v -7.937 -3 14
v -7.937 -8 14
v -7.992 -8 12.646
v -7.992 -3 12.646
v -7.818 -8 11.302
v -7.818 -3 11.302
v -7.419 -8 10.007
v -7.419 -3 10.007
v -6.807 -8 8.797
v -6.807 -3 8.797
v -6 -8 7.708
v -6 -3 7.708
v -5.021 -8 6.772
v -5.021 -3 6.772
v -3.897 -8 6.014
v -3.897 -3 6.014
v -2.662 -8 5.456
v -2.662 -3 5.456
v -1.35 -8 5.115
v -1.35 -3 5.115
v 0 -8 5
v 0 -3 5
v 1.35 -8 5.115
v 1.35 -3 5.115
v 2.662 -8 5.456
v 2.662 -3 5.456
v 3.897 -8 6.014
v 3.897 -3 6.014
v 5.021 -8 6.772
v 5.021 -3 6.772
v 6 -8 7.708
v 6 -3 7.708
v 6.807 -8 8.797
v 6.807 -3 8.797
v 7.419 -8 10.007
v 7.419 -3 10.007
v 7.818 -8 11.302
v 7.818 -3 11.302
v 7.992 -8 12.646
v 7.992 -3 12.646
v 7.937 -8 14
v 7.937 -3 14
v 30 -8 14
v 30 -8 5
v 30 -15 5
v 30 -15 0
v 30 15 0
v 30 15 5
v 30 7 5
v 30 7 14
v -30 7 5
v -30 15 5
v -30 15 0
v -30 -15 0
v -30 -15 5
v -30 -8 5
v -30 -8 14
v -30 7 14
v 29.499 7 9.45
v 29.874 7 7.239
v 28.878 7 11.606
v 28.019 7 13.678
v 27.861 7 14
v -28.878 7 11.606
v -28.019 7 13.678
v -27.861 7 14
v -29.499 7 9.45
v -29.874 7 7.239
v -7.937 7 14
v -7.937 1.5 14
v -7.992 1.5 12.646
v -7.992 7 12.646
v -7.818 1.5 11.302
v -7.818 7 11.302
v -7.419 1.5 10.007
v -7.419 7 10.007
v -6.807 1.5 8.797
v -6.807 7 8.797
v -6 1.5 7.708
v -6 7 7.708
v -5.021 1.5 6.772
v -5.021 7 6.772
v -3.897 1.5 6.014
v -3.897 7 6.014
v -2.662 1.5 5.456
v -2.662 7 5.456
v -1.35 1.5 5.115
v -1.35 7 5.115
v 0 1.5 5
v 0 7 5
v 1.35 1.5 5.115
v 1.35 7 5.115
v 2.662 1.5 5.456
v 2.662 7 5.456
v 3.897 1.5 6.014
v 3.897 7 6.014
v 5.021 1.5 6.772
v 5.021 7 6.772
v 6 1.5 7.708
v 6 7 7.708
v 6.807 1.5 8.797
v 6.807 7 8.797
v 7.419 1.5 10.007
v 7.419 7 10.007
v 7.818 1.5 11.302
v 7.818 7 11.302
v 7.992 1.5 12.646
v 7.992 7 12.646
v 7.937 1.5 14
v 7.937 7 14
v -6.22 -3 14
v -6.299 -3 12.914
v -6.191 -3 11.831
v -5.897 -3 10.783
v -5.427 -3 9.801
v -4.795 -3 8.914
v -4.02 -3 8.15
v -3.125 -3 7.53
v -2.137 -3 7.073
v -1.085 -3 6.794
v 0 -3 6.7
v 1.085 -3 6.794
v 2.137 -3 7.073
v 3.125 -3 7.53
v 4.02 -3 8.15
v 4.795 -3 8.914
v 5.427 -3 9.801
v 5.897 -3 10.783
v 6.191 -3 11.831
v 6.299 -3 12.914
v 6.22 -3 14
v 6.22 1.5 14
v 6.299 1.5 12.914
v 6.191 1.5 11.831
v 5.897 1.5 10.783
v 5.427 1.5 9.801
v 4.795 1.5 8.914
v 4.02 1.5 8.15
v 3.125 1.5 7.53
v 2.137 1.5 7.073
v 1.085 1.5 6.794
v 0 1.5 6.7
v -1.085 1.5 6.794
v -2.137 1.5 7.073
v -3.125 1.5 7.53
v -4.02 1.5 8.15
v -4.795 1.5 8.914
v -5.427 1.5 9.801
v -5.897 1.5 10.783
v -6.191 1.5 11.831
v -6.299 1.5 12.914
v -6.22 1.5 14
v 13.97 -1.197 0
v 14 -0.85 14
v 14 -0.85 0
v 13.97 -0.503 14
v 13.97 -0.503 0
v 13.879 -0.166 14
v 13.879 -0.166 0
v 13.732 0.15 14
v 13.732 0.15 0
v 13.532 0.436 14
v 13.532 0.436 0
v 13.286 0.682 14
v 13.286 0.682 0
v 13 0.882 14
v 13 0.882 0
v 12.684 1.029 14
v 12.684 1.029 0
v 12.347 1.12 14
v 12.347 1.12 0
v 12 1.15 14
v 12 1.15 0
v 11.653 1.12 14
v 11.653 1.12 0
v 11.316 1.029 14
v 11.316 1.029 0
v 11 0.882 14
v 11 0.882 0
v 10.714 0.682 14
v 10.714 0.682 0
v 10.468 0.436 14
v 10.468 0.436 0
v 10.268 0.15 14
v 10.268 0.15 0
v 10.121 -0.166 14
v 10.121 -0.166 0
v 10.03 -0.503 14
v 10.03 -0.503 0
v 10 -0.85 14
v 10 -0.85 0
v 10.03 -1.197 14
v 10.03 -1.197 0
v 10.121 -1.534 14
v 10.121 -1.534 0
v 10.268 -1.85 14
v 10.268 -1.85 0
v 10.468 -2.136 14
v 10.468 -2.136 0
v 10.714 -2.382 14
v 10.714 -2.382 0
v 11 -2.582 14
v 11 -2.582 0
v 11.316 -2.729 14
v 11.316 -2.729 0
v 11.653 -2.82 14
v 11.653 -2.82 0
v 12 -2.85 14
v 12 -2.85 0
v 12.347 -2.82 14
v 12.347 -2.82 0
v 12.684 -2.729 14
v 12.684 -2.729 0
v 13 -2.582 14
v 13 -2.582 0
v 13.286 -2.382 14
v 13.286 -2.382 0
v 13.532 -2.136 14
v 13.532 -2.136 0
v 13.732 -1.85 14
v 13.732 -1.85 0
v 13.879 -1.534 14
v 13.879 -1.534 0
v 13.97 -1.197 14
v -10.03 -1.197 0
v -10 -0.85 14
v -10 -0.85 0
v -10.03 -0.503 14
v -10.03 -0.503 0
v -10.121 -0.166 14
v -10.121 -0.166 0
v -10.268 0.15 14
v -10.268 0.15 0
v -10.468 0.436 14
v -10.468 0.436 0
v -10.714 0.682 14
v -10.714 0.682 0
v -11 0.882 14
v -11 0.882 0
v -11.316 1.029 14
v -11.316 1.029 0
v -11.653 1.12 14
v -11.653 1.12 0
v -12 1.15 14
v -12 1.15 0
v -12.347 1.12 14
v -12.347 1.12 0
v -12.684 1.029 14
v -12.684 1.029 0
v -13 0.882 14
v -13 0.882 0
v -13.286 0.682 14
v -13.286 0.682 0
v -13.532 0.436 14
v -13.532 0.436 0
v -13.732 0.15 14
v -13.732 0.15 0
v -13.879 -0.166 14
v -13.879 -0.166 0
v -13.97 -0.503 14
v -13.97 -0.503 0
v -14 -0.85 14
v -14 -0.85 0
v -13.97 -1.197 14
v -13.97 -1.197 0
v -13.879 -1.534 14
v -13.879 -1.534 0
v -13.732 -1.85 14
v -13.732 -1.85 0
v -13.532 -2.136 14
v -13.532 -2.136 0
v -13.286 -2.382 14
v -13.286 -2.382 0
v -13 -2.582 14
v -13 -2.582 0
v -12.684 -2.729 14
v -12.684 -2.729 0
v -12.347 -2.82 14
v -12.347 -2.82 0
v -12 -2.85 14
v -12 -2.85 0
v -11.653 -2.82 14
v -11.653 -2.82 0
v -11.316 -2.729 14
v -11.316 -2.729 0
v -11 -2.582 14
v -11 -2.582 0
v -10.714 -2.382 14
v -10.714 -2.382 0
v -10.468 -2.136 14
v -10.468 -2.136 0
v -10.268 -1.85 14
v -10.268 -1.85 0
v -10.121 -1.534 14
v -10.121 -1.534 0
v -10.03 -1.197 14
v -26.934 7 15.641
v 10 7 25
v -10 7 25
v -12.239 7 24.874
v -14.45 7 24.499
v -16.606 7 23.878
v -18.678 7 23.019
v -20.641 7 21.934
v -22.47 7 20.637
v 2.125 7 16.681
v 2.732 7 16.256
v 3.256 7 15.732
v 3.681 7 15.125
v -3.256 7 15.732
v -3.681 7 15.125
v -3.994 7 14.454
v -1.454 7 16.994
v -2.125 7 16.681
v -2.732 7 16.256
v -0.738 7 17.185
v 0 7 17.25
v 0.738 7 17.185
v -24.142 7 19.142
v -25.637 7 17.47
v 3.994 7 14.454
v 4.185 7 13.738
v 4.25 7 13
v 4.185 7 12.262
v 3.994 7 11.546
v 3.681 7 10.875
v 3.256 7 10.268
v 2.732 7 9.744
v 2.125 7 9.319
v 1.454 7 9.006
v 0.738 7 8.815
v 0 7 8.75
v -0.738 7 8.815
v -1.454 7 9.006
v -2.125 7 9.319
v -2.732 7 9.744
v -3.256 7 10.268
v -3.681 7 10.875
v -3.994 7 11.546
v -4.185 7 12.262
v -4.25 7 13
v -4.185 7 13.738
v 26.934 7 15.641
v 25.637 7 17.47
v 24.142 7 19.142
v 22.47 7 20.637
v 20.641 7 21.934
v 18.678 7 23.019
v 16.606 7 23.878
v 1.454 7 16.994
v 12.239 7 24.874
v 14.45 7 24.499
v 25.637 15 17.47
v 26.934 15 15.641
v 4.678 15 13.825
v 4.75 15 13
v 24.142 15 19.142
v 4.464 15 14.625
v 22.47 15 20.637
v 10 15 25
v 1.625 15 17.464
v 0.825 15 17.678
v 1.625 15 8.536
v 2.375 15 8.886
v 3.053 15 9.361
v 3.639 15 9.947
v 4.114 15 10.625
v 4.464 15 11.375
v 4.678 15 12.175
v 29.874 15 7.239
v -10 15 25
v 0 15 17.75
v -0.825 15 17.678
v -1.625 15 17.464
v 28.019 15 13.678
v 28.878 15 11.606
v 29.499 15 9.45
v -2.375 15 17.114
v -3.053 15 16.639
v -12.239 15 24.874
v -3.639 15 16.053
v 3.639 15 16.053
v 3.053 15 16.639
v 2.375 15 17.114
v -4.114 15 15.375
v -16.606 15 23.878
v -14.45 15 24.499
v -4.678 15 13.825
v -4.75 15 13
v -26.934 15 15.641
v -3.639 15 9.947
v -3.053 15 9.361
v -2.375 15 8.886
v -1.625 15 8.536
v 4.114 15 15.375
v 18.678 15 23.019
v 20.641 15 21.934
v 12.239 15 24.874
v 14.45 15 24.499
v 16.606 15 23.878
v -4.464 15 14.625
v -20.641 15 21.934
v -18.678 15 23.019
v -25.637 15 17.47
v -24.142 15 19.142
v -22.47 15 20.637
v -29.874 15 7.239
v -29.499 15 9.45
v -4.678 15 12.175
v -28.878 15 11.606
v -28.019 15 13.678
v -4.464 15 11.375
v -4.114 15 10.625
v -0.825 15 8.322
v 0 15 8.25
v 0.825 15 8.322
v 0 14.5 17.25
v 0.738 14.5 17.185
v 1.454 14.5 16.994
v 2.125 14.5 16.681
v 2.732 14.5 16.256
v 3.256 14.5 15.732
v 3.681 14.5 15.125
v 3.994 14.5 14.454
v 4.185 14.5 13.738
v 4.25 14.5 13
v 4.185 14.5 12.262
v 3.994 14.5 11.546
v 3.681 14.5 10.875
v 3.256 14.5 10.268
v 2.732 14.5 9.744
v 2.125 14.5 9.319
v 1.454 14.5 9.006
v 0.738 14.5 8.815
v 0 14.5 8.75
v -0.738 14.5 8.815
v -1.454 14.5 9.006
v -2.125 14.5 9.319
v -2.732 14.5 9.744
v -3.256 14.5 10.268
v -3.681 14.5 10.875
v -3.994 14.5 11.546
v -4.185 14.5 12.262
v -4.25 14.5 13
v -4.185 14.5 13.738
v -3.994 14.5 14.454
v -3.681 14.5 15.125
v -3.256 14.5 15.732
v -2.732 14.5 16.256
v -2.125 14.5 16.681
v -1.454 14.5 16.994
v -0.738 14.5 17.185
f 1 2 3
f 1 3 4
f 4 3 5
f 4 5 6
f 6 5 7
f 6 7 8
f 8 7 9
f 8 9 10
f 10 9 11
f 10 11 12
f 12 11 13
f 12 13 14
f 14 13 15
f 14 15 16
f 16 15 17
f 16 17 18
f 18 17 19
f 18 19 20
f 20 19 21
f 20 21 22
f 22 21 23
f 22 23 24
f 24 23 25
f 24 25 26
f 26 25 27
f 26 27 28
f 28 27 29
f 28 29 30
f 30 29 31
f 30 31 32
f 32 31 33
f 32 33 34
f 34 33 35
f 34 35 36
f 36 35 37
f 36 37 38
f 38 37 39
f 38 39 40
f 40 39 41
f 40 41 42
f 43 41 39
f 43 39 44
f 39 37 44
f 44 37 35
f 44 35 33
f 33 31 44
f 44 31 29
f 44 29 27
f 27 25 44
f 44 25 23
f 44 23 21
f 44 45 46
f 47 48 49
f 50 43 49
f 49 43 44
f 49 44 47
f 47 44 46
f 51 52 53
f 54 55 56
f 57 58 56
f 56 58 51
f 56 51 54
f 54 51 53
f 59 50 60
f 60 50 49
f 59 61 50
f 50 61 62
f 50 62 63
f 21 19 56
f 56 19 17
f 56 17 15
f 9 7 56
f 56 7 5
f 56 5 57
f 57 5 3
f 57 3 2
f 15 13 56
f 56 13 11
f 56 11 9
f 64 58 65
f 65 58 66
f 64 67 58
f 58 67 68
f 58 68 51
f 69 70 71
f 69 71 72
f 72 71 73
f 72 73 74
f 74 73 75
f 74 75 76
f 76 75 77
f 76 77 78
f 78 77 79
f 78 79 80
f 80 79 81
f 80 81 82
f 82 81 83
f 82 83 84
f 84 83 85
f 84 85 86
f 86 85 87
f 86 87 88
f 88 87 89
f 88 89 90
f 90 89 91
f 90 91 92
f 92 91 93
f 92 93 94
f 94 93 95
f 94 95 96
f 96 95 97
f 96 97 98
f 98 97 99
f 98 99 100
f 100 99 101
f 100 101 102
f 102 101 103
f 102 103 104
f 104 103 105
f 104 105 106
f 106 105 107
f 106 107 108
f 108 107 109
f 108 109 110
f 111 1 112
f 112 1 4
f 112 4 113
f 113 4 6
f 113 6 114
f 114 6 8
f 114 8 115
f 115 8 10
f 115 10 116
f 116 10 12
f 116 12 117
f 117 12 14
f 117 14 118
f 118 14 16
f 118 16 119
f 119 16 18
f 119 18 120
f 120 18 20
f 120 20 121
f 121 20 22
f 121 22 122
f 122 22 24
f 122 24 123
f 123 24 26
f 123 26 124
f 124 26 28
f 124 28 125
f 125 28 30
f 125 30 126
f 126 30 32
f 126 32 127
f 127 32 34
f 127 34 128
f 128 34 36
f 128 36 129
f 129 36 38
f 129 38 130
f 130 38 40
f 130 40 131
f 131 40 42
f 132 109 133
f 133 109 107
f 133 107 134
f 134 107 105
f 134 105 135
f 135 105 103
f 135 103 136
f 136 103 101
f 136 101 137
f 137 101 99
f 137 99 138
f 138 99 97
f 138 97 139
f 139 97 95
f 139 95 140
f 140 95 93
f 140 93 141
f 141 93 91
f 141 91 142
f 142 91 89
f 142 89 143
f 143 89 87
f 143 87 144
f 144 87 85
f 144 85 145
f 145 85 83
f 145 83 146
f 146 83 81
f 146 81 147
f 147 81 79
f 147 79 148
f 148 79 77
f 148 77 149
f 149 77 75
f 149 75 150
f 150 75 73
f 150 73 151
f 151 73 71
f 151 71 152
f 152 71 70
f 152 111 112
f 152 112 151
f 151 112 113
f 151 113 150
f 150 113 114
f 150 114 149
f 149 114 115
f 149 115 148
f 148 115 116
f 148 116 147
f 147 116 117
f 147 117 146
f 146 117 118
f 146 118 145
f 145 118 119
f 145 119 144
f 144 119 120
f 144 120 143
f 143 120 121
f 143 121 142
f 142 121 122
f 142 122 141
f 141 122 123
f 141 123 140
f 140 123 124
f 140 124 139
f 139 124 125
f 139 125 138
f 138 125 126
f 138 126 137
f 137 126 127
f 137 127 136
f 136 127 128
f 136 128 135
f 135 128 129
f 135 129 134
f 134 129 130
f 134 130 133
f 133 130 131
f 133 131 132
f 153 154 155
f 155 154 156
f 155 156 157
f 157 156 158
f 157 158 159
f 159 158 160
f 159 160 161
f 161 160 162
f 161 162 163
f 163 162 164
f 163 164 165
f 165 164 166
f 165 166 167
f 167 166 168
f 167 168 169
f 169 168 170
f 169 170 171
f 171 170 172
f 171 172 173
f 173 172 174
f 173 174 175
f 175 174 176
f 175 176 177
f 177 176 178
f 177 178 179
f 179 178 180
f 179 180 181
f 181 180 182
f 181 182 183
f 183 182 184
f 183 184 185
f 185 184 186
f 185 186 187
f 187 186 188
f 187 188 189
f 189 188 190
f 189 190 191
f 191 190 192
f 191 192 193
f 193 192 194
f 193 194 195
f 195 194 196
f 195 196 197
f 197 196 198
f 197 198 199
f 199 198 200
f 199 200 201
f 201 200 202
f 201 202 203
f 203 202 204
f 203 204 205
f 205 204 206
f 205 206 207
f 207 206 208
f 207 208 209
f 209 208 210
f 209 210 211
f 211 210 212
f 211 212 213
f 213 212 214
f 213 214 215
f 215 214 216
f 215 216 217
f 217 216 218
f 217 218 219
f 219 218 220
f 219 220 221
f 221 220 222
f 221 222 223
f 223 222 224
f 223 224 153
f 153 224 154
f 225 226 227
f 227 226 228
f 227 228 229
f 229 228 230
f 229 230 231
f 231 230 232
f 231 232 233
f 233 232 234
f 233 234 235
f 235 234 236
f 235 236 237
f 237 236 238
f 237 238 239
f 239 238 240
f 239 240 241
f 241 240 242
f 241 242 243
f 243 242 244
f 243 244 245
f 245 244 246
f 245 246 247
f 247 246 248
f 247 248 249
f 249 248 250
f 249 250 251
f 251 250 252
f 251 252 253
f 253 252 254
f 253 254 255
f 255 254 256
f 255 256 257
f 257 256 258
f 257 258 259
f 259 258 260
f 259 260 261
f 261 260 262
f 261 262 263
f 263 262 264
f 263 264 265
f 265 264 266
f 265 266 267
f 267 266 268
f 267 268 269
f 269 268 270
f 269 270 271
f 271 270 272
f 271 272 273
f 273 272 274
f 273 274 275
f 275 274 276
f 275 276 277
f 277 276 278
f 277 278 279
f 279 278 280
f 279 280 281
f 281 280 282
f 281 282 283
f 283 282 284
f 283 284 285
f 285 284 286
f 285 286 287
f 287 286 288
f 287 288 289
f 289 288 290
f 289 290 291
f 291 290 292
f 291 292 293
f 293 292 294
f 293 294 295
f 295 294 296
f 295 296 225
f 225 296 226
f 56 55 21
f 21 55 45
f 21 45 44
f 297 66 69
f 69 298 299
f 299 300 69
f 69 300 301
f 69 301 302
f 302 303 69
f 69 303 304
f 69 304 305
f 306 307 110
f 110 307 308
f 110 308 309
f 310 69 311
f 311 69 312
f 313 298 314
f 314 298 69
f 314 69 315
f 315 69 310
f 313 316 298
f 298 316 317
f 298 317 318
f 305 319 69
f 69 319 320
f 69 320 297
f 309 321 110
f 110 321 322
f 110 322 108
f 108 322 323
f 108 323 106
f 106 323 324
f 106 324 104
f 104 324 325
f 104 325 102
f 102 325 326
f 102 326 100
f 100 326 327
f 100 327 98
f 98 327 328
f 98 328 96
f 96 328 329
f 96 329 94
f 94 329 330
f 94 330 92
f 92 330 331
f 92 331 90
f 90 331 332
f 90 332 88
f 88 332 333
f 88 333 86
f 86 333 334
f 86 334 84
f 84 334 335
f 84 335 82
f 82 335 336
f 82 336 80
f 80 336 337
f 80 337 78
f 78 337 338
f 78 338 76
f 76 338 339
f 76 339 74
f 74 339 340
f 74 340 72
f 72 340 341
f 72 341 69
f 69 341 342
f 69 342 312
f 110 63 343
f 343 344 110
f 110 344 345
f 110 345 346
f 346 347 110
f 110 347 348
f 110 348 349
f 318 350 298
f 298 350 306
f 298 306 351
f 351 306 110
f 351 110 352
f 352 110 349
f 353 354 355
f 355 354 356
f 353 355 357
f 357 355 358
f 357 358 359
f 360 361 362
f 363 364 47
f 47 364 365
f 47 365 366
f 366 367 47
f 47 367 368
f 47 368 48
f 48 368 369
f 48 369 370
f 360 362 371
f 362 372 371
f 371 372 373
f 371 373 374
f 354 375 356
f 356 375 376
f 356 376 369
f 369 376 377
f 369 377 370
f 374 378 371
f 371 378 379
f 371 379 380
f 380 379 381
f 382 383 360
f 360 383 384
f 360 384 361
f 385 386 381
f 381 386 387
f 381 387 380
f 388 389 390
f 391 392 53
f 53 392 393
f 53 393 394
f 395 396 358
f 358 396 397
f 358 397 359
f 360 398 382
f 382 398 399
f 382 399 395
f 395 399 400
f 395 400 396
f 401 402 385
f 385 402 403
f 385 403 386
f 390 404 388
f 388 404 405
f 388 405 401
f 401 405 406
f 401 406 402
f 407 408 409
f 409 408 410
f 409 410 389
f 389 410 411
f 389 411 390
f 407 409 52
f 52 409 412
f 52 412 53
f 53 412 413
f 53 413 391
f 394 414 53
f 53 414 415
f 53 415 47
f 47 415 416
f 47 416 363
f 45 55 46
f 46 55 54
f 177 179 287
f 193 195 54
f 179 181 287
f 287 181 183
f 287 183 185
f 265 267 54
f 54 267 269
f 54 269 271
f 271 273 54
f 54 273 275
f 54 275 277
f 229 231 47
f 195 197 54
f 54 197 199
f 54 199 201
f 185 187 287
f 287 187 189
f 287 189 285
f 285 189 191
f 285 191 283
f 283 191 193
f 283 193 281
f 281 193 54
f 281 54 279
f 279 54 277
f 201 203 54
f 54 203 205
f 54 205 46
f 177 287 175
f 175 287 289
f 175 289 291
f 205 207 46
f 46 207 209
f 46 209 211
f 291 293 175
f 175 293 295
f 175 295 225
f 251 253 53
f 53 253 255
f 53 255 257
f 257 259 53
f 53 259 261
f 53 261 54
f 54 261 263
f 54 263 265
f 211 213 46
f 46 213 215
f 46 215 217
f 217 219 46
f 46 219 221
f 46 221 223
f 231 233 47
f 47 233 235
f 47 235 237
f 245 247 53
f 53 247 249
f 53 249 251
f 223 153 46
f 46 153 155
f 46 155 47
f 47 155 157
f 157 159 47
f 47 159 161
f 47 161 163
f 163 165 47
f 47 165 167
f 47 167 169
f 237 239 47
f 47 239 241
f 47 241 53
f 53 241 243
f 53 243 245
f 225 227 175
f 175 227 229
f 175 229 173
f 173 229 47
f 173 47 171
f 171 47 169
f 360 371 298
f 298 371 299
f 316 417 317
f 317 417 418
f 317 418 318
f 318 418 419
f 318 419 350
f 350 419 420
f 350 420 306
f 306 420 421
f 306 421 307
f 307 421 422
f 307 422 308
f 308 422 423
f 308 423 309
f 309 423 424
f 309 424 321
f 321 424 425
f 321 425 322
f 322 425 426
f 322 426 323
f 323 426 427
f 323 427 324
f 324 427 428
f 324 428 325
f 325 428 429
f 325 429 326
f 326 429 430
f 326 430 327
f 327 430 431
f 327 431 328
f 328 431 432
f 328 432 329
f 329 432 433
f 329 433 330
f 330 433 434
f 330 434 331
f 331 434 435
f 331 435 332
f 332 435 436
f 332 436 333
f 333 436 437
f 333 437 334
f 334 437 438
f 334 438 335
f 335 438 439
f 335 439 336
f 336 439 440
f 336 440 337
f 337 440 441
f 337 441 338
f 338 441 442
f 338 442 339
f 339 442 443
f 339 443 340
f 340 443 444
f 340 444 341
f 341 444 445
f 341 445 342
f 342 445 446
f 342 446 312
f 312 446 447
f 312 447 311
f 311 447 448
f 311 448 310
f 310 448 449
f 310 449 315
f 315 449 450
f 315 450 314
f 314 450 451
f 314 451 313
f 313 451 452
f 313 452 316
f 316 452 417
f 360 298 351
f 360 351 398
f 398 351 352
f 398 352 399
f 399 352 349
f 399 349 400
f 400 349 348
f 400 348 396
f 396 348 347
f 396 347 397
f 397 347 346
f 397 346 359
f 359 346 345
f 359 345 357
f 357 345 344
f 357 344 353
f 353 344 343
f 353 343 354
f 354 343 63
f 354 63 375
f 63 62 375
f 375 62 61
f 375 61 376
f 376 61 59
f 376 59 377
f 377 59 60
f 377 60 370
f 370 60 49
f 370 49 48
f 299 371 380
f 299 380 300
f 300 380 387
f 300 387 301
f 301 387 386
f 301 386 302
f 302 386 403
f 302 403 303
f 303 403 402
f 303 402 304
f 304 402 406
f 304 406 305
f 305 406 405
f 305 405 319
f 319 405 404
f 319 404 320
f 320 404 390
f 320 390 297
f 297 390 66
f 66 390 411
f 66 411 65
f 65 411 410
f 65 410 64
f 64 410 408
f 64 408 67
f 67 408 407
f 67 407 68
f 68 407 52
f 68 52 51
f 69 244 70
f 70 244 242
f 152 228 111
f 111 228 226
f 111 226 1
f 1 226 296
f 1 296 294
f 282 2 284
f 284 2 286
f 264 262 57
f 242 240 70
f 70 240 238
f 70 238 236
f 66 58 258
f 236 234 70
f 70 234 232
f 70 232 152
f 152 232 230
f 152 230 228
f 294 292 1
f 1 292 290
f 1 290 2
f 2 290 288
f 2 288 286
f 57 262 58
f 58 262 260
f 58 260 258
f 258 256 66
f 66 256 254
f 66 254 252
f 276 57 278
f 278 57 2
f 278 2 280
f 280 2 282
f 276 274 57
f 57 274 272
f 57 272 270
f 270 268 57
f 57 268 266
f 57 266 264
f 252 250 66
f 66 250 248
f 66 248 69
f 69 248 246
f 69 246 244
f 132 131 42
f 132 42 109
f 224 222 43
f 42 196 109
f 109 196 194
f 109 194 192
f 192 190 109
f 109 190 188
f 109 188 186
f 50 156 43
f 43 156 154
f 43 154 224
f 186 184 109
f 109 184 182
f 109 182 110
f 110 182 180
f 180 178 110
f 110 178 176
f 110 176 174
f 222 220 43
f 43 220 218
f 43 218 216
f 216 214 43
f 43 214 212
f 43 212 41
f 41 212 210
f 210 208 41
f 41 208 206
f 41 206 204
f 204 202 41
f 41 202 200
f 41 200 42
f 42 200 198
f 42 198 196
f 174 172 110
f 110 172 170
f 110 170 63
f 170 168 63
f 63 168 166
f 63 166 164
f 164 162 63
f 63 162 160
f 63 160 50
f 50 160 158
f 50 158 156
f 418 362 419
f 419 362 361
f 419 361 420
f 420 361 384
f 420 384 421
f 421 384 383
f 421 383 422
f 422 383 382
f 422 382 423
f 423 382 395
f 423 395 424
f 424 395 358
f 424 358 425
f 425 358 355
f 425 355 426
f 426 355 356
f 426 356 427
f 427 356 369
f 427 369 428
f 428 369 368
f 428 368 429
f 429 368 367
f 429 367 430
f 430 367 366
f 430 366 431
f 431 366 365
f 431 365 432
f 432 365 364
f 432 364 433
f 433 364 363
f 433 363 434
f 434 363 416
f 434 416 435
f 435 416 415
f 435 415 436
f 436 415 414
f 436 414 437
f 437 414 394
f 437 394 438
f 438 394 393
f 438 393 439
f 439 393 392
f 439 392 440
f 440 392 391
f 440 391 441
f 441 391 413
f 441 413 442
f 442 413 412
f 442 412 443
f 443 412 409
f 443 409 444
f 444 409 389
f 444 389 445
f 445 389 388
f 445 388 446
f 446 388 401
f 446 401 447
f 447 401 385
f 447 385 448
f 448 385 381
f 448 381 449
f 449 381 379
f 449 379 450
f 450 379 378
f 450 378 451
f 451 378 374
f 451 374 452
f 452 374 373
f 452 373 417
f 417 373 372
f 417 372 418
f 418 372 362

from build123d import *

# Parameters (mm, degrees)
SCHIZZO1_W                   = 60
SCHIZZO1_H                   = 30
ESTRUSIONE_ESTRUSIONE1_DEPTH = 5
SCHIZZO2_W                   = 60
SCHIZZO2_H                   = 8
ESTRUSIONE_ESTRUSIONE2_DEPTH = 20
SCHIZZO3_R                   = 4.25
TAGLIO_ESTRUSIONE1_DEPTH     = 8
RACCORDO1_R                  = 20
SCHIZZO4_W                   = 60
SCHIZZO4_H                   = 15
ESTRUSIONE_ESTRUSIONE3_DEPTH = 10
SCHIZZO6_R                   = 8
TAGLIO_ESTRUSIONE2_DEPTH     = 15
SCHIZZO8_W                   = 60
SCHIZZO8_H                   = 4.5
ESTRUSIONE_ESTRUSIONE4_DEPTH = 10
SCHIZZO9_R                   = 6.3
TAGLIO_ESTRUSIONE3_DEPTH     = 4.5
SCHIZZO10_R                  = 2
TAGLIO_ESTRUSIONE4_DEPTH     = 16
SCHIZZO11_W                  = 60
SCHIZZO11_H                  = 15
TAGLIO_ESTRUSIONE5_DEPTH     = 1
SMUSSO1_SIZE                 = 0.5


with BuildPart() as part:
    # Schizzo1 → Estrusione-Estrusione1 (new body)
    with BuildSketch(Plane.XY):
        Rectangle(SCHIZZO1_W, SCHIZZO1_H)
    extrude(amount=ESTRUSIONE_ESTRUSIONE1_DEPTH)

    # Schizzo2 → Estrusione-Estrusione2 (add)
    with BuildSketch(Plane.XY.offset(5)):
        with Locations((0, 11)):
            Rectangle(SCHIZZO2_W, SCHIZZO2_H)
    extrude(amount=ESTRUSIONE_ESTRUSIONE2_DEPTH)

    # Schizzo3 → Taglio-Estrusione1 (cut)
    with BuildSketch(Plane(origin=(0, 15, 0), x_dir=(1, 0, 0), z_dir=(0, 1, 0))):
        with Locations((0, -13)):
            Circle(SCHIZZO3_R)
    extrude(amount=-TAGLIO_ESTRUSIONE1_DEPTH, mode=Mode.SUBTRACT)

    # Raccordo1
    raccordo1_edges = [part.edges().sort_by_distance(p)[0] for p in [
        (30, 11, 25),
        (-30, 11, 25),
    ]]
    fillet(raccordo1_edges, radius=RACCORDO1_R)

    # Schizzo4 → Estrusione-Estrusione3 (add)
    with BuildSketch(Plane.XY.offset(5)):
        with Locations((0, -0.5)):
            Rectangle(SCHIZZO4_W, SCHIZZO4_H)
    extrude(amount=ESTRUSIONE_ESTRUSIONE3_DEPTH)

    # Schizzo6 → Taglio-Estrusione2 (cut)
    with BuildSketch(Plane.XZ.offset(8)):
        with Locations((0, 13)):
            Circle(SCHIZZO6_R)
    extrude(amount=-TAGLIO_ESTRUSIONE2_DEPTH, mode=Mode.SUBTRACT)

    # Schizzo8 → Estrusione-Estrusione4 (add)
    with BuildSketch(Plane.XY.offset(15)):
        with Locations((0, -0.75)):
            Rectangle(SCHIZZO8_W, SCHIZZO8_H)
    extrude(amount=-ESTRUSIONE_ESTRUSIONE4_DEPTH)

    # Schizzo9 → Taglio-Estrusione3 (cut)
    with BuildSketch(Plane.XZ.offset(3)):
        with Locations((0, 13)):
            Circle(SCHIZZO9_R)
    extrude(amount=-TAGLIO_ESTRUSIONE3_DEPTH, mode=Mode.SUBTRACT)

    # Schizzo10 → Taglio-Estrusione4 (cut, through all)
    with BuildSketch(Plane.XY.offset(15)):
        with Locations((12, -0.85)):
            Circle(SCHIZZO10_R)
        with Locations((-12, -0.85)):
            Circle(SCHIZZO10_R)
    extrude(amount=-TAGLIO_ESTRUSIONE4_DEPTH, mode=Mode.SUBTRACT)

    # Schizzo11 → Taglio-Estrusione5 (cut)
    with BuildSketch(Plane.XY.offset(15)):
        with Locations((0, -0.5)):
            Rectangle(SCHIZZO11_W, SCHIZZO11_H)
    extrude(amount=-TAGLIO_ESTRUSIONE5_DEPTH, mode=Mode.SUBTRACT)

    # Smusso1
    smusso1_edges = [part.edges().sort_by_distance(p)[0] for p in [
        (-4.25, 15, 13),
    ]]
    chamfer(smusso1_edges, length=SMUSSO1_SIZE)


solid = part.part
